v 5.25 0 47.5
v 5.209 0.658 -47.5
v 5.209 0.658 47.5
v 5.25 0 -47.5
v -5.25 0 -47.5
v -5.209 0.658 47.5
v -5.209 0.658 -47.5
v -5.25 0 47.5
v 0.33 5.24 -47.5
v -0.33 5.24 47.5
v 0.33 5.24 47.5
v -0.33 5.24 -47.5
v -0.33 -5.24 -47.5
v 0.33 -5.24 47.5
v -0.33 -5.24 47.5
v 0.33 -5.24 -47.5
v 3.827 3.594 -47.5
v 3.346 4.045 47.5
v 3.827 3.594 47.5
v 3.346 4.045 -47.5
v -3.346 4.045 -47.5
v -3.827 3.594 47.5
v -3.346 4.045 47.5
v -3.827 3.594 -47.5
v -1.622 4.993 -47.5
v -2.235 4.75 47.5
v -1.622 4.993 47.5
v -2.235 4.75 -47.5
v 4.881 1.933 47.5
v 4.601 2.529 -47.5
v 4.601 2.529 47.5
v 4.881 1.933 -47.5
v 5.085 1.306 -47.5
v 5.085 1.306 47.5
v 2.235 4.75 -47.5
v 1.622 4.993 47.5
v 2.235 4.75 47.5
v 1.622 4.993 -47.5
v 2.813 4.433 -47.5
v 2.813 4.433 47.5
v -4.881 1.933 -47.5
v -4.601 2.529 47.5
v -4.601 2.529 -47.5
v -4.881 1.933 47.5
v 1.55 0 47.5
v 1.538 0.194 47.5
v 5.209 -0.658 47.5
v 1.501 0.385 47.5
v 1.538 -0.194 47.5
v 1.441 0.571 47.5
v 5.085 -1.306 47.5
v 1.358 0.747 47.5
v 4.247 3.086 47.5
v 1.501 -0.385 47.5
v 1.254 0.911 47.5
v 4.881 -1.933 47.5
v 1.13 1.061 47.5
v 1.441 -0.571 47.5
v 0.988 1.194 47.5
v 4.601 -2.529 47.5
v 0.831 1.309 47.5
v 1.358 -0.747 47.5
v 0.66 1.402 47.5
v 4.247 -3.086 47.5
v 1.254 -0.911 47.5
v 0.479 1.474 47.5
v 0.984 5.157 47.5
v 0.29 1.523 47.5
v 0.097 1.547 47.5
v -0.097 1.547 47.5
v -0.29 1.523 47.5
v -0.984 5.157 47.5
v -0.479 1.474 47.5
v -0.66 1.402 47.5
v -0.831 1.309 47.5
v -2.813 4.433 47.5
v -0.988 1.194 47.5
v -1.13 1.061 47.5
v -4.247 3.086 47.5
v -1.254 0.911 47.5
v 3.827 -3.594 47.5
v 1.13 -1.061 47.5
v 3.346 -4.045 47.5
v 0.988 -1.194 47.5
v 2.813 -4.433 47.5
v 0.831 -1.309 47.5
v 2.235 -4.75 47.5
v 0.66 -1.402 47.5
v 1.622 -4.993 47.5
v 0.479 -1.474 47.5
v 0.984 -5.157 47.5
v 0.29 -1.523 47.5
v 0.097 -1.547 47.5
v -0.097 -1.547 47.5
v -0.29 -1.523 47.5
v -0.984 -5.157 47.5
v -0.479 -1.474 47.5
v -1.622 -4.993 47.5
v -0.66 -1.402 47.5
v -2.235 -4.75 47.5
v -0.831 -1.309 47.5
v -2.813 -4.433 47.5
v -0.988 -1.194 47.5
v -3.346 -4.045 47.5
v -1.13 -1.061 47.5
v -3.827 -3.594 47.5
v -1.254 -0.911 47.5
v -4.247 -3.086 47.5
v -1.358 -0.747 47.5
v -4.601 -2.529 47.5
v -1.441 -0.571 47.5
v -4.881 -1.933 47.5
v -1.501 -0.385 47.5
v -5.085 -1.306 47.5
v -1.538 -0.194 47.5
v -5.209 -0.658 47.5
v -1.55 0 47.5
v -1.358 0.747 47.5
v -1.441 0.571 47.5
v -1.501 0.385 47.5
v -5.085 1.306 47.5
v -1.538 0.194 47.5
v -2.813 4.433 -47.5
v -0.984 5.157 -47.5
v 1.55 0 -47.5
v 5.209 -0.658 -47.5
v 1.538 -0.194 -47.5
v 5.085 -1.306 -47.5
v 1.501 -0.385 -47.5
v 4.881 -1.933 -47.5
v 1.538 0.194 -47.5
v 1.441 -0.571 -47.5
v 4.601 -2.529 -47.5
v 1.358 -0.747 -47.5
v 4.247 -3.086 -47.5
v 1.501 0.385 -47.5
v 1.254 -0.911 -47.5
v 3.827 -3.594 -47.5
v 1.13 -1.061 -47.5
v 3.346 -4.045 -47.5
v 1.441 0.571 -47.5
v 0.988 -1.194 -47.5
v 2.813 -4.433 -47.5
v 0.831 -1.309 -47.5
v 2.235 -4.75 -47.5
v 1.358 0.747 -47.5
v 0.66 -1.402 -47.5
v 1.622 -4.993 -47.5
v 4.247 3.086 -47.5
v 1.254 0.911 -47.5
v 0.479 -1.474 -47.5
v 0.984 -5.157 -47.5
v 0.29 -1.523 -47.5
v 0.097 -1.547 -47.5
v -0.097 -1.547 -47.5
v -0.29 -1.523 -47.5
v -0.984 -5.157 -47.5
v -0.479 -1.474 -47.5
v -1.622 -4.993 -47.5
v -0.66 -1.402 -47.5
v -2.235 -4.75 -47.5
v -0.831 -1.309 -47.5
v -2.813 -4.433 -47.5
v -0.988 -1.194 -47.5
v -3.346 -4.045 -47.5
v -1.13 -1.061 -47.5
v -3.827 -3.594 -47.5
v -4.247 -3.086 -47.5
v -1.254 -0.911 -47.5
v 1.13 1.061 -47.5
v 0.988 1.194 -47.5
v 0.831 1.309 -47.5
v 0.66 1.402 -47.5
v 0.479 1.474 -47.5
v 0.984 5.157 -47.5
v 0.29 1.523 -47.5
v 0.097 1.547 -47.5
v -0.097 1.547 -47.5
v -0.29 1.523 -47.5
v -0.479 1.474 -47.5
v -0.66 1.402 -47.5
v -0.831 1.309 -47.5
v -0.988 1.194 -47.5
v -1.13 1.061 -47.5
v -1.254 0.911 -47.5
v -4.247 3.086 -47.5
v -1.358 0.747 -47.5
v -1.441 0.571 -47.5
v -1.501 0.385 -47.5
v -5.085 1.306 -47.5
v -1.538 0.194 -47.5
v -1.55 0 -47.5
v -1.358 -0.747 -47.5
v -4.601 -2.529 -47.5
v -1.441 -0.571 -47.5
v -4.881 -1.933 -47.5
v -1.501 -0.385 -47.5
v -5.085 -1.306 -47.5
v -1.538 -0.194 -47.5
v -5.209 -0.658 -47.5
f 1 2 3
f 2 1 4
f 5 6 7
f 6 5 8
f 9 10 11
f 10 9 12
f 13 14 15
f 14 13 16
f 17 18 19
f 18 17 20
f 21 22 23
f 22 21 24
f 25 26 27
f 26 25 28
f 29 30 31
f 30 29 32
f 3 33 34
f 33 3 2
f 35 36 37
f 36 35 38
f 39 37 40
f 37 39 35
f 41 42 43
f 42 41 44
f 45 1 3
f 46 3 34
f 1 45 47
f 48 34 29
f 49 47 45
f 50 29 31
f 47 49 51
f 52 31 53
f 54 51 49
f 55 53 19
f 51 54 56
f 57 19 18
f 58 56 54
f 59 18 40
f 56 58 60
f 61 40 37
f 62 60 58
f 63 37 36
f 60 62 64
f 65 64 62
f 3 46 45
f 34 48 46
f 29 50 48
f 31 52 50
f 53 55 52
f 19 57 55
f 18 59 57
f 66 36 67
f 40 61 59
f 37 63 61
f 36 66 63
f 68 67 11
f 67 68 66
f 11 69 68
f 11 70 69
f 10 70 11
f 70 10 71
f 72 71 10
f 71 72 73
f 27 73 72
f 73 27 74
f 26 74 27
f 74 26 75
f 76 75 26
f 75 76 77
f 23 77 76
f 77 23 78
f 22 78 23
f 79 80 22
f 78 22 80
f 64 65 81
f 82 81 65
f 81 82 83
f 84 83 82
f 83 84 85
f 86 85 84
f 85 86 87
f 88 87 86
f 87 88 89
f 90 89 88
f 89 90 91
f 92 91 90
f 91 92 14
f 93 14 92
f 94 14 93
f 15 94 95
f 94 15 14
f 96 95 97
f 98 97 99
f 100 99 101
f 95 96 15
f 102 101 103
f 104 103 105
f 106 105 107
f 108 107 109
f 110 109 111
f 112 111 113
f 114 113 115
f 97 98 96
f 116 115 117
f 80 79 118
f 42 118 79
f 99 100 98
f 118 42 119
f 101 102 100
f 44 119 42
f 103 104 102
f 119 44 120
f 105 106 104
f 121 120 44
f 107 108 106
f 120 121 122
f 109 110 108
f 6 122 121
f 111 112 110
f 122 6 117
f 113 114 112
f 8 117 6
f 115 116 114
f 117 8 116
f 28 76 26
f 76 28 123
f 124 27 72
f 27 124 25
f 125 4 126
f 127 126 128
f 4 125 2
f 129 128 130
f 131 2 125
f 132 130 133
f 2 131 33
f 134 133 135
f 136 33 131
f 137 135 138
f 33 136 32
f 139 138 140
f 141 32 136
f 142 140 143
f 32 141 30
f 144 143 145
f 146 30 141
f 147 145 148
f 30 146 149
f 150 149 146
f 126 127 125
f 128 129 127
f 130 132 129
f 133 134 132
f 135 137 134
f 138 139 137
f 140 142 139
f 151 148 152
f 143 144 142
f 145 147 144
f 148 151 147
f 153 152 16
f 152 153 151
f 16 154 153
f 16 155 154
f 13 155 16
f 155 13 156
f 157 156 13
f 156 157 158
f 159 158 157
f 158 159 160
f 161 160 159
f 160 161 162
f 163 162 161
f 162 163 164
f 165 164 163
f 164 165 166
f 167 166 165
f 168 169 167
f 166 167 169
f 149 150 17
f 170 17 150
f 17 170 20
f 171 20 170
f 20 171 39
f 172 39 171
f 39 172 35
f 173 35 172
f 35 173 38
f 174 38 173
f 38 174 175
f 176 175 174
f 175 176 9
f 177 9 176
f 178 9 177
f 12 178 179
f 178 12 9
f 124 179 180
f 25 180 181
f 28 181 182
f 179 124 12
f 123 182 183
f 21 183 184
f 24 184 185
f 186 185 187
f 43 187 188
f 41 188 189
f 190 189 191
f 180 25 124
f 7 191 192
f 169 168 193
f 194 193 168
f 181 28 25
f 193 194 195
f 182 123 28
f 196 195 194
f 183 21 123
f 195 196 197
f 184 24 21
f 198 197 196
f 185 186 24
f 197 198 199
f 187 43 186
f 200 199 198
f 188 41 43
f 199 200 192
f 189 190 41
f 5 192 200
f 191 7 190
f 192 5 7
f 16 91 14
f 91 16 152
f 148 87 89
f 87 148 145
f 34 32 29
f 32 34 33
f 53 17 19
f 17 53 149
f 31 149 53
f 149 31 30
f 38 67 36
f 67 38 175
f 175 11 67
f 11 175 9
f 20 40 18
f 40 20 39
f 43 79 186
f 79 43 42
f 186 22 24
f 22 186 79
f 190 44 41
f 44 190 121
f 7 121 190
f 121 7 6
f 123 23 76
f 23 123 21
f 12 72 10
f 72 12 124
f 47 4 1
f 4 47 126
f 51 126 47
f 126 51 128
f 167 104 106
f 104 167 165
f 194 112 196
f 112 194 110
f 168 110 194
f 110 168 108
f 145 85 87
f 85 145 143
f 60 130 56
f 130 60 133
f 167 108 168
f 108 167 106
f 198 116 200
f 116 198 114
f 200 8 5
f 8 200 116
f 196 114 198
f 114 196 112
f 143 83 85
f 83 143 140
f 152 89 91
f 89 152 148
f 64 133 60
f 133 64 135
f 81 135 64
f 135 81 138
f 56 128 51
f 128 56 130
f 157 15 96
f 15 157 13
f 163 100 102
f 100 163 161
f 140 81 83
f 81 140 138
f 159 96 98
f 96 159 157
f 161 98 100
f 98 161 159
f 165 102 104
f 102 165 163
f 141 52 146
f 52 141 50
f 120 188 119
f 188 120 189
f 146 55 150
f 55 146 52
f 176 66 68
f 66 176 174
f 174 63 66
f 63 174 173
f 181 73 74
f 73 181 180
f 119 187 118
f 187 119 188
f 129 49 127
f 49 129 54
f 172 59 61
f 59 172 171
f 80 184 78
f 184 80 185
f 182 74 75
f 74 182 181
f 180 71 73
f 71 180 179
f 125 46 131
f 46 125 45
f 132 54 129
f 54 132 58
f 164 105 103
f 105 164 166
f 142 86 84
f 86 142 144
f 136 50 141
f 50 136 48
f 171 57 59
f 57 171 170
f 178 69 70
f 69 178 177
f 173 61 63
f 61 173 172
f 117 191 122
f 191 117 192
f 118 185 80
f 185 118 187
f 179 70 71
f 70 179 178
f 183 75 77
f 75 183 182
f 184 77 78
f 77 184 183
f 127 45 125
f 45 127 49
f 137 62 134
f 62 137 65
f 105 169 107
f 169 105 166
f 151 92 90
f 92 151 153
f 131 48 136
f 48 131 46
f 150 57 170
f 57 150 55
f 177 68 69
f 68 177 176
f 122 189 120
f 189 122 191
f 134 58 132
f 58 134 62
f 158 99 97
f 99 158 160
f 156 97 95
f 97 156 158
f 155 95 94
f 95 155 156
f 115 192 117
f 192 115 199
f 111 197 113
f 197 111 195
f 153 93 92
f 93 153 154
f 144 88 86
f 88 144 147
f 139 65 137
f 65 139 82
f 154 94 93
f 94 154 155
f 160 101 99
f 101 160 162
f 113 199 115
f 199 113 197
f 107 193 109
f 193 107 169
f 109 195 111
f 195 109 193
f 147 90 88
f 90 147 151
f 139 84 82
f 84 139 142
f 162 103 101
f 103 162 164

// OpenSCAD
$fn = 50;


difference() {
	union() {
		translate(v = [0, 0, -47.5000000000]) {
			cylinder(h = 95, r = 5.2500000000);
		}
	}
	union() {
		translate(v = [0, 0, -100.0000000000]) {
			cylinder(h = 200, r = 1.5500000000);
		}
	}
}
